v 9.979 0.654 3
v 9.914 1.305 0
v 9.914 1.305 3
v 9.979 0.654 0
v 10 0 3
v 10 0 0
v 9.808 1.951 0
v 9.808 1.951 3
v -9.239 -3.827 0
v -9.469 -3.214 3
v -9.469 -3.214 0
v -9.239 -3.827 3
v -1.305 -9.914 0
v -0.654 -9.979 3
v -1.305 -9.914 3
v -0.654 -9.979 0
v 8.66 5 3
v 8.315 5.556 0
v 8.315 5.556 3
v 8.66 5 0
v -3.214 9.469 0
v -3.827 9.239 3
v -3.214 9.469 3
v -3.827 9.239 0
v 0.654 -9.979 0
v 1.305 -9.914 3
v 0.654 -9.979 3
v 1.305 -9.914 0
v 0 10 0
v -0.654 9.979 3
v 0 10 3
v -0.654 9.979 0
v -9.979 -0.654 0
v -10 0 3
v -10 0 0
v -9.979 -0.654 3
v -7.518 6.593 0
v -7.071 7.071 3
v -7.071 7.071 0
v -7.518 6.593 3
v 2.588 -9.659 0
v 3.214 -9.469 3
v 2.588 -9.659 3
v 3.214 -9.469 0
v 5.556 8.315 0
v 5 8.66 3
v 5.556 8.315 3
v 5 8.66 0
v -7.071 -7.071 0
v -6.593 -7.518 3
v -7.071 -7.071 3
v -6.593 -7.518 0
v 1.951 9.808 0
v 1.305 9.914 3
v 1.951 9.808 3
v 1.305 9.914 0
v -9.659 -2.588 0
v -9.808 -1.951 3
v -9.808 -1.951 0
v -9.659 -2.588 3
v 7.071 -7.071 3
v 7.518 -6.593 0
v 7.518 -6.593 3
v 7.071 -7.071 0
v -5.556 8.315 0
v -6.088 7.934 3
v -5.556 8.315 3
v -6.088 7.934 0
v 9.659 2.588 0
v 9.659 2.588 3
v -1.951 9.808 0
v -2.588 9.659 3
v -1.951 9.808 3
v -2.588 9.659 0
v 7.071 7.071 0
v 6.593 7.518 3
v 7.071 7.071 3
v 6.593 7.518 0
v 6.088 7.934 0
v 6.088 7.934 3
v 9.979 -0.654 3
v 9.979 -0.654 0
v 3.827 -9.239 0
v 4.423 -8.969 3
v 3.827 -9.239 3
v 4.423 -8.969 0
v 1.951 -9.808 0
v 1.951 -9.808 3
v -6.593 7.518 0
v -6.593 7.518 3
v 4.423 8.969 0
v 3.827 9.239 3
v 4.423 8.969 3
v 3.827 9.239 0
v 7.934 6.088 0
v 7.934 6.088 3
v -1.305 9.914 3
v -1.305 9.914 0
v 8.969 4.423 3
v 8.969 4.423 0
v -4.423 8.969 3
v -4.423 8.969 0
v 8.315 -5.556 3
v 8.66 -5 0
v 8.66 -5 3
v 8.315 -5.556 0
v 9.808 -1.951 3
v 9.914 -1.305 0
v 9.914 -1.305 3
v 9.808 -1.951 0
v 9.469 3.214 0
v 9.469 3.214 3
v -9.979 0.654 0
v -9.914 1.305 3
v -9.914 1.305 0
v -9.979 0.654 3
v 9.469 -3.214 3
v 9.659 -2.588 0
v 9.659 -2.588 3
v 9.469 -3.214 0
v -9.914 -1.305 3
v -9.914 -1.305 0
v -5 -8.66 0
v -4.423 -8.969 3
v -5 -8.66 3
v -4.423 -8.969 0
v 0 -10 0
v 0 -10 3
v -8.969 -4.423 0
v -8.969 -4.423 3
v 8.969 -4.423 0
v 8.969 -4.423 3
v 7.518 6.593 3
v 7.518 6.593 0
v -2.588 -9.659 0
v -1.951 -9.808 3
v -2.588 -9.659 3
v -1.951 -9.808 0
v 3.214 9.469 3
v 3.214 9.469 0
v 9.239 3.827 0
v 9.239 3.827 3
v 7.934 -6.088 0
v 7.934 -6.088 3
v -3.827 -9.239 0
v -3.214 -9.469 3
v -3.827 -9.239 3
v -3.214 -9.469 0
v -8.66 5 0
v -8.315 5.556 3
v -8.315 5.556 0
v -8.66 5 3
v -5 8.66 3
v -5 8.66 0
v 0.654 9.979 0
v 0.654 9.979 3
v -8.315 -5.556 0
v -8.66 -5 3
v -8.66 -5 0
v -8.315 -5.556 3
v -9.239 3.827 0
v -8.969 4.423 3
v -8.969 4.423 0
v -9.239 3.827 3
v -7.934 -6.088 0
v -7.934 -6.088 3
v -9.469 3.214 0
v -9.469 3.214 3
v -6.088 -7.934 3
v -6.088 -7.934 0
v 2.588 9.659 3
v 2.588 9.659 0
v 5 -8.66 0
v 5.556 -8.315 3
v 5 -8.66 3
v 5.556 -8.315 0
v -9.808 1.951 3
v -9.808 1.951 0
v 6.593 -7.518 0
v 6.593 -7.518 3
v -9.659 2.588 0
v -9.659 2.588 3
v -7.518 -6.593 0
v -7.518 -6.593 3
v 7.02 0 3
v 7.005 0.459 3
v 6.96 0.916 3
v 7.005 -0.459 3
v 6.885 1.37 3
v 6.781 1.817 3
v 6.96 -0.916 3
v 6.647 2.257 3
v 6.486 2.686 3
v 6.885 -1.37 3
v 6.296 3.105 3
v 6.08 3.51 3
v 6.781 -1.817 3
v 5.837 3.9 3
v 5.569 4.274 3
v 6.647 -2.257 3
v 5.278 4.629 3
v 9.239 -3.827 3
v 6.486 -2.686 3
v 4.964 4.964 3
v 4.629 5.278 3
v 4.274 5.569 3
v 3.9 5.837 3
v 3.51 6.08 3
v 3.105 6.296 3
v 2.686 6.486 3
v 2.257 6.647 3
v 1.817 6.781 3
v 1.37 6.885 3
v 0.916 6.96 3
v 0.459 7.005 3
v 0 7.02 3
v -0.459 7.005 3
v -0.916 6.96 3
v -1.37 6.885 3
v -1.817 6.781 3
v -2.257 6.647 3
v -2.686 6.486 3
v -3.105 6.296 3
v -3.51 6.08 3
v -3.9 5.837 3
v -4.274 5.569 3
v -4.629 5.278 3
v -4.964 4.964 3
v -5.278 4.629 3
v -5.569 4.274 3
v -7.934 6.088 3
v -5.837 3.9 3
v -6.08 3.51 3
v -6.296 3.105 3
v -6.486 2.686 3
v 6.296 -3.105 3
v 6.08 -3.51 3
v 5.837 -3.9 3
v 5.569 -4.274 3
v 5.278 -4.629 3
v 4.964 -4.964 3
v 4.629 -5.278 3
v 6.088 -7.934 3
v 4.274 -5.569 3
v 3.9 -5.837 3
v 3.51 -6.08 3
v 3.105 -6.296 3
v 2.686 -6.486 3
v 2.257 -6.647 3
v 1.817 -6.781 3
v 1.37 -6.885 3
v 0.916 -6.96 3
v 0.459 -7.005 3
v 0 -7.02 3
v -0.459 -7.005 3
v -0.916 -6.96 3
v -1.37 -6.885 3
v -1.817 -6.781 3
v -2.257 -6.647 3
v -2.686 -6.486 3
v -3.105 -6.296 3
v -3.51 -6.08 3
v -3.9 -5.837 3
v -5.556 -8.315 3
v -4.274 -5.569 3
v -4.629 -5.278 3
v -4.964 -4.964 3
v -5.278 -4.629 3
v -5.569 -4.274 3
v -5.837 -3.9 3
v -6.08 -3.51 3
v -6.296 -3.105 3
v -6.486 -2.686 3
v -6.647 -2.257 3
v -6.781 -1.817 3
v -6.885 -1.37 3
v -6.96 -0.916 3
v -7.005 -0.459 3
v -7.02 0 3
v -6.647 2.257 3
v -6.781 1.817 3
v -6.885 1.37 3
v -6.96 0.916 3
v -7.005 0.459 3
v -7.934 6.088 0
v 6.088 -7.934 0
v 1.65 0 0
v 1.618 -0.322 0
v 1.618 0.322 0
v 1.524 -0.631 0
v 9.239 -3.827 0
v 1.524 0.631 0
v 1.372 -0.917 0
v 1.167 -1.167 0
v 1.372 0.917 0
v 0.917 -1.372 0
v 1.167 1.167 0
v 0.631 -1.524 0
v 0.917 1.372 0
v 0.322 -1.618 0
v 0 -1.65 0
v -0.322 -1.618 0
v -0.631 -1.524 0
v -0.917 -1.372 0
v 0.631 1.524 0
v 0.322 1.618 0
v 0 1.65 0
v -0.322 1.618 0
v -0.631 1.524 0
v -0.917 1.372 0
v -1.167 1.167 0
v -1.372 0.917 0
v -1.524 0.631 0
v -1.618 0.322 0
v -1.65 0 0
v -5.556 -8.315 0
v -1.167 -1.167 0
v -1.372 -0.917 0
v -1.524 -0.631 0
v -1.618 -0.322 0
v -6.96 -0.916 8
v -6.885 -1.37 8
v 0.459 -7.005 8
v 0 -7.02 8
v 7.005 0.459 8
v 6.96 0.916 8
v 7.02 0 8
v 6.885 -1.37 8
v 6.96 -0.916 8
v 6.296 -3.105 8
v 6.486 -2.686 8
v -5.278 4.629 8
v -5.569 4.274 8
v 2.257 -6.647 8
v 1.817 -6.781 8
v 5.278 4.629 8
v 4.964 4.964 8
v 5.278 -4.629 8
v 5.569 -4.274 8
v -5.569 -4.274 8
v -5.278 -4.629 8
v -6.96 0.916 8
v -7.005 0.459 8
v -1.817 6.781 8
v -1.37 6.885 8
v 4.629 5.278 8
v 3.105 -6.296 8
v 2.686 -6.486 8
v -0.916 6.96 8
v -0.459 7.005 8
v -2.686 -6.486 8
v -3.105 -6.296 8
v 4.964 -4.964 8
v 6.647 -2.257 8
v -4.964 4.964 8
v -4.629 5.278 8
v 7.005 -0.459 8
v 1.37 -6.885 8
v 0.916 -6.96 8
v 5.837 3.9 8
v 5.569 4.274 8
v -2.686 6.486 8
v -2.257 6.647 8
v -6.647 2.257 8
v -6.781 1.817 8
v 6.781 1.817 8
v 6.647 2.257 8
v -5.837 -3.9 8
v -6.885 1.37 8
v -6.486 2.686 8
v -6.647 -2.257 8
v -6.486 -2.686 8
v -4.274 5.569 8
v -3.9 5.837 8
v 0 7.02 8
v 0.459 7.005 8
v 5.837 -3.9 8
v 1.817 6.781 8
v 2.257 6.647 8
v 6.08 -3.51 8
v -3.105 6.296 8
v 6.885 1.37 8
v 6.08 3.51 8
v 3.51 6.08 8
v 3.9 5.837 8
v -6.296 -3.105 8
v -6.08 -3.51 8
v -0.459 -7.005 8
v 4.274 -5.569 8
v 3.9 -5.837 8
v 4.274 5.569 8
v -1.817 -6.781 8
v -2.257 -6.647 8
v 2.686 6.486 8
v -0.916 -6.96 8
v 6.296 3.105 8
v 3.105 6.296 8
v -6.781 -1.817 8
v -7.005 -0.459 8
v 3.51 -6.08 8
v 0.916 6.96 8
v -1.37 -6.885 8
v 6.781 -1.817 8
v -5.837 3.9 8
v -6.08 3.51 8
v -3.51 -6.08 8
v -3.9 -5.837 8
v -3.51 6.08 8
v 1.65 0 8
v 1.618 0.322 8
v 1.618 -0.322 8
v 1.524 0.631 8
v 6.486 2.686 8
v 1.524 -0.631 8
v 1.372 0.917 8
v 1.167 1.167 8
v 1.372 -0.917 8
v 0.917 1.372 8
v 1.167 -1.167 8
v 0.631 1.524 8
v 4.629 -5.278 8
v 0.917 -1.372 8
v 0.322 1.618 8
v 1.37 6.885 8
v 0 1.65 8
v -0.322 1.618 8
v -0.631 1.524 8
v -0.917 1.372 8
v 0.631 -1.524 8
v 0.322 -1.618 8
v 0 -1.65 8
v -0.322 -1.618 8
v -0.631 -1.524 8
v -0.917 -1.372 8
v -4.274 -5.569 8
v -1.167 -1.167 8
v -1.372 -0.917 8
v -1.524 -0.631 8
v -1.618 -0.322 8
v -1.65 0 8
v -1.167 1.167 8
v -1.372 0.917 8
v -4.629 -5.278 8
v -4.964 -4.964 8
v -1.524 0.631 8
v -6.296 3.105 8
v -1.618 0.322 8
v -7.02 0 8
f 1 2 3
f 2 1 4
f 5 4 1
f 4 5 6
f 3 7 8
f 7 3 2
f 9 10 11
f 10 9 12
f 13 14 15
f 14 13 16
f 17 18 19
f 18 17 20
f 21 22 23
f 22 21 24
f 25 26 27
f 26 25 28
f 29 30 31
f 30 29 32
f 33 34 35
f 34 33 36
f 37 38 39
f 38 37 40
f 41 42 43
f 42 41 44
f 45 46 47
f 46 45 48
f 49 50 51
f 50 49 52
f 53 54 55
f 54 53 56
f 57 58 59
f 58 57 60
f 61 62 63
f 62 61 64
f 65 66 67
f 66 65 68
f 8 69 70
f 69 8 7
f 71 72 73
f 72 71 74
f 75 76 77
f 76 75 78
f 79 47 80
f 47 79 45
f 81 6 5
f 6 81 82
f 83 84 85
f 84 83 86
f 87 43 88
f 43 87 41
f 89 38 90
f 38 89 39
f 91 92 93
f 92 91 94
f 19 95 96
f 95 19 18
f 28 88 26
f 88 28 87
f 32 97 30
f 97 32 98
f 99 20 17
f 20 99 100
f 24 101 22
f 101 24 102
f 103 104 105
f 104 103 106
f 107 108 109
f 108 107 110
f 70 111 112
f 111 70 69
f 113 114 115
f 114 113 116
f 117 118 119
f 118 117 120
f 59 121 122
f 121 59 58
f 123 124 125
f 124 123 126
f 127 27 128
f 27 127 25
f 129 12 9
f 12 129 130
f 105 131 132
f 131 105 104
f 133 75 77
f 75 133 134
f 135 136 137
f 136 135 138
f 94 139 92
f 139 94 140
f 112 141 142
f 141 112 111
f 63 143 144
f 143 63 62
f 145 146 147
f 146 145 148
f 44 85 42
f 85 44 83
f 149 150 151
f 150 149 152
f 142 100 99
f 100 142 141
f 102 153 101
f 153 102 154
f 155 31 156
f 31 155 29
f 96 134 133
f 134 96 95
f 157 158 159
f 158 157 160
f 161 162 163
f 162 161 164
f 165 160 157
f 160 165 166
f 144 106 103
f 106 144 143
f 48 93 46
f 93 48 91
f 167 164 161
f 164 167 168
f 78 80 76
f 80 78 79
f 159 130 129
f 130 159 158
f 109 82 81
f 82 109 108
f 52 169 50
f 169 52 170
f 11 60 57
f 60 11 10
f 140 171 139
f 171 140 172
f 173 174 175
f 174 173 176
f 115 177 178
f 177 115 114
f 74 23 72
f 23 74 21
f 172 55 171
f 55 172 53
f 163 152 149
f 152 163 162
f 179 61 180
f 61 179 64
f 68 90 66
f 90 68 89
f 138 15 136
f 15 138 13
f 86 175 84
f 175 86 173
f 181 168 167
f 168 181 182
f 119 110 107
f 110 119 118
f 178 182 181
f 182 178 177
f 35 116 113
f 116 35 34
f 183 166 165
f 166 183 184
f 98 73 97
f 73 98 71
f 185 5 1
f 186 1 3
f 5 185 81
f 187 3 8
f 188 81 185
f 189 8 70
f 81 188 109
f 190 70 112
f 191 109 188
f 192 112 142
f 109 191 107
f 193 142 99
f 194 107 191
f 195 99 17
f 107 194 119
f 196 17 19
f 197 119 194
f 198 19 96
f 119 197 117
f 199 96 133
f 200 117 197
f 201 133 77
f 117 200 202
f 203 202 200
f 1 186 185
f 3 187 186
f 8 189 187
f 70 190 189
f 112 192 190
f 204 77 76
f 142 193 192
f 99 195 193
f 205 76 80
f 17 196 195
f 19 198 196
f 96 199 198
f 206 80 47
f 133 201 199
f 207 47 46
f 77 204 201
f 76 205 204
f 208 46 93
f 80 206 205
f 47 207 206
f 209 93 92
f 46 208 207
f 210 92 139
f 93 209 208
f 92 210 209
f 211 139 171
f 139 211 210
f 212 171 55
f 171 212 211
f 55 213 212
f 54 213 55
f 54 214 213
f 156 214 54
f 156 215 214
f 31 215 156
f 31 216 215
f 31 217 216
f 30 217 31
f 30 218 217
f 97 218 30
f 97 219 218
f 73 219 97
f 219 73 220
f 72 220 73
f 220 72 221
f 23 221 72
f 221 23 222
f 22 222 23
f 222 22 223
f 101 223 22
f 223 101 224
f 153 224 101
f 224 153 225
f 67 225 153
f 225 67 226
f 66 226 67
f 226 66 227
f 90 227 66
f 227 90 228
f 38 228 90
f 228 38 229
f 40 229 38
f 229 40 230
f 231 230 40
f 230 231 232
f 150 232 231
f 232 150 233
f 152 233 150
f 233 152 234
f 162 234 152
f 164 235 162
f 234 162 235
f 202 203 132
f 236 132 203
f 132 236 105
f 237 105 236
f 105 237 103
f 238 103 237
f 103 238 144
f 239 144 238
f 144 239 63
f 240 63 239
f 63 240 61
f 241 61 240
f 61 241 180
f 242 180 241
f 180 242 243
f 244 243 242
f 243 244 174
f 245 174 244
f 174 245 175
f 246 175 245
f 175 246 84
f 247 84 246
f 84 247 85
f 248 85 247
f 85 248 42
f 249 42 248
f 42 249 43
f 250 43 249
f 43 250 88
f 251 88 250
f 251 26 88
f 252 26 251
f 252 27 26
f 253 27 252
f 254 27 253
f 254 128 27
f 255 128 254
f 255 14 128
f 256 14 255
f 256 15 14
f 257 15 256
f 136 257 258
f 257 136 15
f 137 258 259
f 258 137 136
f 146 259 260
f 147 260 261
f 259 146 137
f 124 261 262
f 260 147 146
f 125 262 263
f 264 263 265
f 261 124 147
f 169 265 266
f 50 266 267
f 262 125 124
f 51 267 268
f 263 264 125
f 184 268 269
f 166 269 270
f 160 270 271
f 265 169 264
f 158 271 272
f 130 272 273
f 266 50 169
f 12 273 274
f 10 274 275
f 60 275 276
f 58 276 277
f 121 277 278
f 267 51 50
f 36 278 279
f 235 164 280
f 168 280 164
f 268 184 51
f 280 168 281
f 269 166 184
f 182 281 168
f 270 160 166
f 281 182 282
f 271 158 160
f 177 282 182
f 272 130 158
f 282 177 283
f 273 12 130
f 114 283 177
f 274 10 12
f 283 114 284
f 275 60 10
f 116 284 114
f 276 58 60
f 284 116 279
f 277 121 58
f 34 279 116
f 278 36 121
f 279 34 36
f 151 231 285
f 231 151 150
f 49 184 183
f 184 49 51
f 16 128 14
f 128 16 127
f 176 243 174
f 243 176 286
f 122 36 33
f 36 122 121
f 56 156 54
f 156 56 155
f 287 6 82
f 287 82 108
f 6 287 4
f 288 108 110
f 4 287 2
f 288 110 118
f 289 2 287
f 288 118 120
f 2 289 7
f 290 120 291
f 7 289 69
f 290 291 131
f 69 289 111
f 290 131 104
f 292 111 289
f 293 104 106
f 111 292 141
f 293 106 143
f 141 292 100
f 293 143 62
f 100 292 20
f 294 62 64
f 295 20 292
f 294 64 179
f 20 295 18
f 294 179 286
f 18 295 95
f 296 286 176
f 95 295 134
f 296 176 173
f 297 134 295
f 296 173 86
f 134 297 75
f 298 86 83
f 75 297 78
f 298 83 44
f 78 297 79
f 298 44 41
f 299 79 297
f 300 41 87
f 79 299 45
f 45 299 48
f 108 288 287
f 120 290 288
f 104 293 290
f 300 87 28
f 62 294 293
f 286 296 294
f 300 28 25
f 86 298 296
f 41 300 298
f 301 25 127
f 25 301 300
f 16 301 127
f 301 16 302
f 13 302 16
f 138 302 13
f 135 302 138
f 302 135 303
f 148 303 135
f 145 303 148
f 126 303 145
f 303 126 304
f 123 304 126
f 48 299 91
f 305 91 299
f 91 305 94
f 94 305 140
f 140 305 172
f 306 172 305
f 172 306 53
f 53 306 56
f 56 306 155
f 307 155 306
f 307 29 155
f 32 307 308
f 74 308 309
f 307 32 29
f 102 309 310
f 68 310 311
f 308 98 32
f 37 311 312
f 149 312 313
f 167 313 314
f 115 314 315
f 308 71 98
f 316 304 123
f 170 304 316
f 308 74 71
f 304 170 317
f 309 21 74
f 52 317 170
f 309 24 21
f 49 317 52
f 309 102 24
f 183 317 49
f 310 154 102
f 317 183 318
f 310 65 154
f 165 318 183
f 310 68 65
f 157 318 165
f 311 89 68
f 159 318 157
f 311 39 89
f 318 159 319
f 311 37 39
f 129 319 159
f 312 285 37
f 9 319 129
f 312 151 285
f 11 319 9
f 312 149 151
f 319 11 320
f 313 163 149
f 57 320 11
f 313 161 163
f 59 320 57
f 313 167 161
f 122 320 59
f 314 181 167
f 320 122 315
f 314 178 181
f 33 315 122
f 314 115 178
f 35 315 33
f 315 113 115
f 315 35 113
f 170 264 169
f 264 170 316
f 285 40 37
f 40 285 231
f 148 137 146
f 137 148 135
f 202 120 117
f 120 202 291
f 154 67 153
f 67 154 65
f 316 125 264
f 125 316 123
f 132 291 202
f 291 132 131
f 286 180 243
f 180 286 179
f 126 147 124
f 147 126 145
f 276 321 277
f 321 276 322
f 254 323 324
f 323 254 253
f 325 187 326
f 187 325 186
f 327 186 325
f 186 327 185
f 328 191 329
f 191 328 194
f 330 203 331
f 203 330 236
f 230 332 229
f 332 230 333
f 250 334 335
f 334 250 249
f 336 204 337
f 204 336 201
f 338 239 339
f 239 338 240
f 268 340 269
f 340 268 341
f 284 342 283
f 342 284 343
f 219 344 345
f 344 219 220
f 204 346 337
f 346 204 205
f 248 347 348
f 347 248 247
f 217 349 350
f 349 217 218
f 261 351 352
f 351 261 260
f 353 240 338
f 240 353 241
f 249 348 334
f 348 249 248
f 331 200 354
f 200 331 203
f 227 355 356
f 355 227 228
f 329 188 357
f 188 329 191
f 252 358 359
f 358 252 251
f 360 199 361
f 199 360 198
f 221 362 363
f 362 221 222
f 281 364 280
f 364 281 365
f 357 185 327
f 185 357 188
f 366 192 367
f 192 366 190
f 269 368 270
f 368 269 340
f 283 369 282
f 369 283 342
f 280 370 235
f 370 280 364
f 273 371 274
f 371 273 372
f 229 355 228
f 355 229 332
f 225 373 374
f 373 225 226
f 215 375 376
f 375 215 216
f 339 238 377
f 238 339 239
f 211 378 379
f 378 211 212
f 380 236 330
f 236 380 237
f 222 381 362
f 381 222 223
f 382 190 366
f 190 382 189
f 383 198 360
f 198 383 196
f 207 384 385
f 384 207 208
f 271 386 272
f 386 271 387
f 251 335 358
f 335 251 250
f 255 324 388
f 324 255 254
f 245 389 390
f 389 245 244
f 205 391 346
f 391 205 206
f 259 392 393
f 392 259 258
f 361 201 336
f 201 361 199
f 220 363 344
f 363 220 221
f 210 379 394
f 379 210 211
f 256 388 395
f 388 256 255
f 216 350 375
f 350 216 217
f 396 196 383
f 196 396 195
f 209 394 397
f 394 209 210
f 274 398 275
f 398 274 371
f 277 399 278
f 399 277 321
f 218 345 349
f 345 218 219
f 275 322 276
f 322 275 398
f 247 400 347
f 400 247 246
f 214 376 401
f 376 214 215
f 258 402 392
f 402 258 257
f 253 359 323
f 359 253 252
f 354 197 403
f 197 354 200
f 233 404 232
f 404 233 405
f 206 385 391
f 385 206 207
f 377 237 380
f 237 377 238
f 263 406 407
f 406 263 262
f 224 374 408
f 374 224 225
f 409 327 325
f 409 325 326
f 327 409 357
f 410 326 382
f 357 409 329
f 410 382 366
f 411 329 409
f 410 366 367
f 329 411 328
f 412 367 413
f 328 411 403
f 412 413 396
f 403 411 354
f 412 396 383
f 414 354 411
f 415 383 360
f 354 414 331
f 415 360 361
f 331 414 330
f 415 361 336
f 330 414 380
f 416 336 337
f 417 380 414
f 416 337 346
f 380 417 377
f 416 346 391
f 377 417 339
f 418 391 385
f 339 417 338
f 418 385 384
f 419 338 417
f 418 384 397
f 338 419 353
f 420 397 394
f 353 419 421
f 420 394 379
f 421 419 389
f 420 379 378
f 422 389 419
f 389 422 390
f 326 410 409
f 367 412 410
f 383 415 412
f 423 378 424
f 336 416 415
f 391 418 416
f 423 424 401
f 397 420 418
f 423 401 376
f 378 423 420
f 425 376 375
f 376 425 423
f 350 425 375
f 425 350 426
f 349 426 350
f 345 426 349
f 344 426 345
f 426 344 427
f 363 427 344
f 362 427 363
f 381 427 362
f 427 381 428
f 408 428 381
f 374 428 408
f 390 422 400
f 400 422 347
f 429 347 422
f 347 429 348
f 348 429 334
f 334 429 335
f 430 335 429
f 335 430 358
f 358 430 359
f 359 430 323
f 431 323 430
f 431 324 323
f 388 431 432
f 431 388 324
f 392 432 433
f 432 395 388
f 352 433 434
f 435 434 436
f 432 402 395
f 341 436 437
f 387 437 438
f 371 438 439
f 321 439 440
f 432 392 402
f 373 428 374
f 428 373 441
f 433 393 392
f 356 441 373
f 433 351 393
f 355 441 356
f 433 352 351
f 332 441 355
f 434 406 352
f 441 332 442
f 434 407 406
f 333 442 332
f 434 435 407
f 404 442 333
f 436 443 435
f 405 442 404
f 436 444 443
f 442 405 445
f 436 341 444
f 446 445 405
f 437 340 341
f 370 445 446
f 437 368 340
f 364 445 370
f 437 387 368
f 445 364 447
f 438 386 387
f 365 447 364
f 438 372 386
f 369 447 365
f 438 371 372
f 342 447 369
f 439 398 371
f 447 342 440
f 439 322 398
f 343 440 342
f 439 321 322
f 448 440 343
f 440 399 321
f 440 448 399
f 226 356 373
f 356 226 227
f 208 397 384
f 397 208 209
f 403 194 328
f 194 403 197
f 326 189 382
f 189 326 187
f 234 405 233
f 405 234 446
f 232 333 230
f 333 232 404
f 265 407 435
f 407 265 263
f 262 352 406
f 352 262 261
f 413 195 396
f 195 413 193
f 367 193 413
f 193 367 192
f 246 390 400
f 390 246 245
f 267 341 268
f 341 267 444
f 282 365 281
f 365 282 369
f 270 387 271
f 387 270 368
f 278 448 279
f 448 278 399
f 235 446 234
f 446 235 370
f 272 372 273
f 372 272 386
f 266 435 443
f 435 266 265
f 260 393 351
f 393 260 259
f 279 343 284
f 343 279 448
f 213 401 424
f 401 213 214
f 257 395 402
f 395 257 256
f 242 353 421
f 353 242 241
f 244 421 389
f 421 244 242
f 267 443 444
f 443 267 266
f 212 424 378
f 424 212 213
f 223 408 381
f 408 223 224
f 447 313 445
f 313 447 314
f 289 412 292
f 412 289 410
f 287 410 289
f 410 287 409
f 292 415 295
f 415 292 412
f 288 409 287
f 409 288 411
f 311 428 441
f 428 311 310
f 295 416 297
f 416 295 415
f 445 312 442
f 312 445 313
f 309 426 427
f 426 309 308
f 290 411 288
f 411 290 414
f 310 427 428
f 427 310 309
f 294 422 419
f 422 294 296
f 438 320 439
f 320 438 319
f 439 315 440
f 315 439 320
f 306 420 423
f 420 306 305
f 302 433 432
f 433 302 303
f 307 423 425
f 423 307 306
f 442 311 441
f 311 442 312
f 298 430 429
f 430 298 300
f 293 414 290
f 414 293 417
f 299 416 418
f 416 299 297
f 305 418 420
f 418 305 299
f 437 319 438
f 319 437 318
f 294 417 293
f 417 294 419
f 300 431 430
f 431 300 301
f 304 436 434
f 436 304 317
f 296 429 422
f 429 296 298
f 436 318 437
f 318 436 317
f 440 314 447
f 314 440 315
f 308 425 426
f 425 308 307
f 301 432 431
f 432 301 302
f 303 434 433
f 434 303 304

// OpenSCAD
// Fitting centring plug. The strut fittings have 9/16 in holes and the rails get 7/16 in
// holes, so a punch or bit put through the fitting's hole can sit anywhere in 4.8 mm of
// slack. This plug drops into the fitting's hole and has a 1/8 in bore dead centre: clamp
// the fitting on its heel mark, drop the plug in, drill the 1/8 in pilot through it, move
// the plug to the next hole. Then take the fitting off and open each pilot to 7/16 in; the
// bit follows the pilot and the hole lands on the fitting's centre, not somewhere in its
// slack. Print two. PRINT orientation: head on the bed, plug up, no supports. Any filament.

hole_d = 14.29;   // 9/16 in
fit    = 0.25;    // clearance so it drops in
plug_h = 5;       // the fitting is 5 mm thick
head_d = 20; head_t = 3;
bore   = 3.3;     // 1/8 in bit
difference() {
    union() {
        cylinder(d = head_d, h = head_t, $fn = 96);
        translate([0, 0, head_t]) cylinder(d = hole_d - fit, h = plug_h, $fn = 96);
    }
    translate([0, 0, -1]) cylinder(d = bore, h = head_t + plug_h + 2, $fn = 32);
}
